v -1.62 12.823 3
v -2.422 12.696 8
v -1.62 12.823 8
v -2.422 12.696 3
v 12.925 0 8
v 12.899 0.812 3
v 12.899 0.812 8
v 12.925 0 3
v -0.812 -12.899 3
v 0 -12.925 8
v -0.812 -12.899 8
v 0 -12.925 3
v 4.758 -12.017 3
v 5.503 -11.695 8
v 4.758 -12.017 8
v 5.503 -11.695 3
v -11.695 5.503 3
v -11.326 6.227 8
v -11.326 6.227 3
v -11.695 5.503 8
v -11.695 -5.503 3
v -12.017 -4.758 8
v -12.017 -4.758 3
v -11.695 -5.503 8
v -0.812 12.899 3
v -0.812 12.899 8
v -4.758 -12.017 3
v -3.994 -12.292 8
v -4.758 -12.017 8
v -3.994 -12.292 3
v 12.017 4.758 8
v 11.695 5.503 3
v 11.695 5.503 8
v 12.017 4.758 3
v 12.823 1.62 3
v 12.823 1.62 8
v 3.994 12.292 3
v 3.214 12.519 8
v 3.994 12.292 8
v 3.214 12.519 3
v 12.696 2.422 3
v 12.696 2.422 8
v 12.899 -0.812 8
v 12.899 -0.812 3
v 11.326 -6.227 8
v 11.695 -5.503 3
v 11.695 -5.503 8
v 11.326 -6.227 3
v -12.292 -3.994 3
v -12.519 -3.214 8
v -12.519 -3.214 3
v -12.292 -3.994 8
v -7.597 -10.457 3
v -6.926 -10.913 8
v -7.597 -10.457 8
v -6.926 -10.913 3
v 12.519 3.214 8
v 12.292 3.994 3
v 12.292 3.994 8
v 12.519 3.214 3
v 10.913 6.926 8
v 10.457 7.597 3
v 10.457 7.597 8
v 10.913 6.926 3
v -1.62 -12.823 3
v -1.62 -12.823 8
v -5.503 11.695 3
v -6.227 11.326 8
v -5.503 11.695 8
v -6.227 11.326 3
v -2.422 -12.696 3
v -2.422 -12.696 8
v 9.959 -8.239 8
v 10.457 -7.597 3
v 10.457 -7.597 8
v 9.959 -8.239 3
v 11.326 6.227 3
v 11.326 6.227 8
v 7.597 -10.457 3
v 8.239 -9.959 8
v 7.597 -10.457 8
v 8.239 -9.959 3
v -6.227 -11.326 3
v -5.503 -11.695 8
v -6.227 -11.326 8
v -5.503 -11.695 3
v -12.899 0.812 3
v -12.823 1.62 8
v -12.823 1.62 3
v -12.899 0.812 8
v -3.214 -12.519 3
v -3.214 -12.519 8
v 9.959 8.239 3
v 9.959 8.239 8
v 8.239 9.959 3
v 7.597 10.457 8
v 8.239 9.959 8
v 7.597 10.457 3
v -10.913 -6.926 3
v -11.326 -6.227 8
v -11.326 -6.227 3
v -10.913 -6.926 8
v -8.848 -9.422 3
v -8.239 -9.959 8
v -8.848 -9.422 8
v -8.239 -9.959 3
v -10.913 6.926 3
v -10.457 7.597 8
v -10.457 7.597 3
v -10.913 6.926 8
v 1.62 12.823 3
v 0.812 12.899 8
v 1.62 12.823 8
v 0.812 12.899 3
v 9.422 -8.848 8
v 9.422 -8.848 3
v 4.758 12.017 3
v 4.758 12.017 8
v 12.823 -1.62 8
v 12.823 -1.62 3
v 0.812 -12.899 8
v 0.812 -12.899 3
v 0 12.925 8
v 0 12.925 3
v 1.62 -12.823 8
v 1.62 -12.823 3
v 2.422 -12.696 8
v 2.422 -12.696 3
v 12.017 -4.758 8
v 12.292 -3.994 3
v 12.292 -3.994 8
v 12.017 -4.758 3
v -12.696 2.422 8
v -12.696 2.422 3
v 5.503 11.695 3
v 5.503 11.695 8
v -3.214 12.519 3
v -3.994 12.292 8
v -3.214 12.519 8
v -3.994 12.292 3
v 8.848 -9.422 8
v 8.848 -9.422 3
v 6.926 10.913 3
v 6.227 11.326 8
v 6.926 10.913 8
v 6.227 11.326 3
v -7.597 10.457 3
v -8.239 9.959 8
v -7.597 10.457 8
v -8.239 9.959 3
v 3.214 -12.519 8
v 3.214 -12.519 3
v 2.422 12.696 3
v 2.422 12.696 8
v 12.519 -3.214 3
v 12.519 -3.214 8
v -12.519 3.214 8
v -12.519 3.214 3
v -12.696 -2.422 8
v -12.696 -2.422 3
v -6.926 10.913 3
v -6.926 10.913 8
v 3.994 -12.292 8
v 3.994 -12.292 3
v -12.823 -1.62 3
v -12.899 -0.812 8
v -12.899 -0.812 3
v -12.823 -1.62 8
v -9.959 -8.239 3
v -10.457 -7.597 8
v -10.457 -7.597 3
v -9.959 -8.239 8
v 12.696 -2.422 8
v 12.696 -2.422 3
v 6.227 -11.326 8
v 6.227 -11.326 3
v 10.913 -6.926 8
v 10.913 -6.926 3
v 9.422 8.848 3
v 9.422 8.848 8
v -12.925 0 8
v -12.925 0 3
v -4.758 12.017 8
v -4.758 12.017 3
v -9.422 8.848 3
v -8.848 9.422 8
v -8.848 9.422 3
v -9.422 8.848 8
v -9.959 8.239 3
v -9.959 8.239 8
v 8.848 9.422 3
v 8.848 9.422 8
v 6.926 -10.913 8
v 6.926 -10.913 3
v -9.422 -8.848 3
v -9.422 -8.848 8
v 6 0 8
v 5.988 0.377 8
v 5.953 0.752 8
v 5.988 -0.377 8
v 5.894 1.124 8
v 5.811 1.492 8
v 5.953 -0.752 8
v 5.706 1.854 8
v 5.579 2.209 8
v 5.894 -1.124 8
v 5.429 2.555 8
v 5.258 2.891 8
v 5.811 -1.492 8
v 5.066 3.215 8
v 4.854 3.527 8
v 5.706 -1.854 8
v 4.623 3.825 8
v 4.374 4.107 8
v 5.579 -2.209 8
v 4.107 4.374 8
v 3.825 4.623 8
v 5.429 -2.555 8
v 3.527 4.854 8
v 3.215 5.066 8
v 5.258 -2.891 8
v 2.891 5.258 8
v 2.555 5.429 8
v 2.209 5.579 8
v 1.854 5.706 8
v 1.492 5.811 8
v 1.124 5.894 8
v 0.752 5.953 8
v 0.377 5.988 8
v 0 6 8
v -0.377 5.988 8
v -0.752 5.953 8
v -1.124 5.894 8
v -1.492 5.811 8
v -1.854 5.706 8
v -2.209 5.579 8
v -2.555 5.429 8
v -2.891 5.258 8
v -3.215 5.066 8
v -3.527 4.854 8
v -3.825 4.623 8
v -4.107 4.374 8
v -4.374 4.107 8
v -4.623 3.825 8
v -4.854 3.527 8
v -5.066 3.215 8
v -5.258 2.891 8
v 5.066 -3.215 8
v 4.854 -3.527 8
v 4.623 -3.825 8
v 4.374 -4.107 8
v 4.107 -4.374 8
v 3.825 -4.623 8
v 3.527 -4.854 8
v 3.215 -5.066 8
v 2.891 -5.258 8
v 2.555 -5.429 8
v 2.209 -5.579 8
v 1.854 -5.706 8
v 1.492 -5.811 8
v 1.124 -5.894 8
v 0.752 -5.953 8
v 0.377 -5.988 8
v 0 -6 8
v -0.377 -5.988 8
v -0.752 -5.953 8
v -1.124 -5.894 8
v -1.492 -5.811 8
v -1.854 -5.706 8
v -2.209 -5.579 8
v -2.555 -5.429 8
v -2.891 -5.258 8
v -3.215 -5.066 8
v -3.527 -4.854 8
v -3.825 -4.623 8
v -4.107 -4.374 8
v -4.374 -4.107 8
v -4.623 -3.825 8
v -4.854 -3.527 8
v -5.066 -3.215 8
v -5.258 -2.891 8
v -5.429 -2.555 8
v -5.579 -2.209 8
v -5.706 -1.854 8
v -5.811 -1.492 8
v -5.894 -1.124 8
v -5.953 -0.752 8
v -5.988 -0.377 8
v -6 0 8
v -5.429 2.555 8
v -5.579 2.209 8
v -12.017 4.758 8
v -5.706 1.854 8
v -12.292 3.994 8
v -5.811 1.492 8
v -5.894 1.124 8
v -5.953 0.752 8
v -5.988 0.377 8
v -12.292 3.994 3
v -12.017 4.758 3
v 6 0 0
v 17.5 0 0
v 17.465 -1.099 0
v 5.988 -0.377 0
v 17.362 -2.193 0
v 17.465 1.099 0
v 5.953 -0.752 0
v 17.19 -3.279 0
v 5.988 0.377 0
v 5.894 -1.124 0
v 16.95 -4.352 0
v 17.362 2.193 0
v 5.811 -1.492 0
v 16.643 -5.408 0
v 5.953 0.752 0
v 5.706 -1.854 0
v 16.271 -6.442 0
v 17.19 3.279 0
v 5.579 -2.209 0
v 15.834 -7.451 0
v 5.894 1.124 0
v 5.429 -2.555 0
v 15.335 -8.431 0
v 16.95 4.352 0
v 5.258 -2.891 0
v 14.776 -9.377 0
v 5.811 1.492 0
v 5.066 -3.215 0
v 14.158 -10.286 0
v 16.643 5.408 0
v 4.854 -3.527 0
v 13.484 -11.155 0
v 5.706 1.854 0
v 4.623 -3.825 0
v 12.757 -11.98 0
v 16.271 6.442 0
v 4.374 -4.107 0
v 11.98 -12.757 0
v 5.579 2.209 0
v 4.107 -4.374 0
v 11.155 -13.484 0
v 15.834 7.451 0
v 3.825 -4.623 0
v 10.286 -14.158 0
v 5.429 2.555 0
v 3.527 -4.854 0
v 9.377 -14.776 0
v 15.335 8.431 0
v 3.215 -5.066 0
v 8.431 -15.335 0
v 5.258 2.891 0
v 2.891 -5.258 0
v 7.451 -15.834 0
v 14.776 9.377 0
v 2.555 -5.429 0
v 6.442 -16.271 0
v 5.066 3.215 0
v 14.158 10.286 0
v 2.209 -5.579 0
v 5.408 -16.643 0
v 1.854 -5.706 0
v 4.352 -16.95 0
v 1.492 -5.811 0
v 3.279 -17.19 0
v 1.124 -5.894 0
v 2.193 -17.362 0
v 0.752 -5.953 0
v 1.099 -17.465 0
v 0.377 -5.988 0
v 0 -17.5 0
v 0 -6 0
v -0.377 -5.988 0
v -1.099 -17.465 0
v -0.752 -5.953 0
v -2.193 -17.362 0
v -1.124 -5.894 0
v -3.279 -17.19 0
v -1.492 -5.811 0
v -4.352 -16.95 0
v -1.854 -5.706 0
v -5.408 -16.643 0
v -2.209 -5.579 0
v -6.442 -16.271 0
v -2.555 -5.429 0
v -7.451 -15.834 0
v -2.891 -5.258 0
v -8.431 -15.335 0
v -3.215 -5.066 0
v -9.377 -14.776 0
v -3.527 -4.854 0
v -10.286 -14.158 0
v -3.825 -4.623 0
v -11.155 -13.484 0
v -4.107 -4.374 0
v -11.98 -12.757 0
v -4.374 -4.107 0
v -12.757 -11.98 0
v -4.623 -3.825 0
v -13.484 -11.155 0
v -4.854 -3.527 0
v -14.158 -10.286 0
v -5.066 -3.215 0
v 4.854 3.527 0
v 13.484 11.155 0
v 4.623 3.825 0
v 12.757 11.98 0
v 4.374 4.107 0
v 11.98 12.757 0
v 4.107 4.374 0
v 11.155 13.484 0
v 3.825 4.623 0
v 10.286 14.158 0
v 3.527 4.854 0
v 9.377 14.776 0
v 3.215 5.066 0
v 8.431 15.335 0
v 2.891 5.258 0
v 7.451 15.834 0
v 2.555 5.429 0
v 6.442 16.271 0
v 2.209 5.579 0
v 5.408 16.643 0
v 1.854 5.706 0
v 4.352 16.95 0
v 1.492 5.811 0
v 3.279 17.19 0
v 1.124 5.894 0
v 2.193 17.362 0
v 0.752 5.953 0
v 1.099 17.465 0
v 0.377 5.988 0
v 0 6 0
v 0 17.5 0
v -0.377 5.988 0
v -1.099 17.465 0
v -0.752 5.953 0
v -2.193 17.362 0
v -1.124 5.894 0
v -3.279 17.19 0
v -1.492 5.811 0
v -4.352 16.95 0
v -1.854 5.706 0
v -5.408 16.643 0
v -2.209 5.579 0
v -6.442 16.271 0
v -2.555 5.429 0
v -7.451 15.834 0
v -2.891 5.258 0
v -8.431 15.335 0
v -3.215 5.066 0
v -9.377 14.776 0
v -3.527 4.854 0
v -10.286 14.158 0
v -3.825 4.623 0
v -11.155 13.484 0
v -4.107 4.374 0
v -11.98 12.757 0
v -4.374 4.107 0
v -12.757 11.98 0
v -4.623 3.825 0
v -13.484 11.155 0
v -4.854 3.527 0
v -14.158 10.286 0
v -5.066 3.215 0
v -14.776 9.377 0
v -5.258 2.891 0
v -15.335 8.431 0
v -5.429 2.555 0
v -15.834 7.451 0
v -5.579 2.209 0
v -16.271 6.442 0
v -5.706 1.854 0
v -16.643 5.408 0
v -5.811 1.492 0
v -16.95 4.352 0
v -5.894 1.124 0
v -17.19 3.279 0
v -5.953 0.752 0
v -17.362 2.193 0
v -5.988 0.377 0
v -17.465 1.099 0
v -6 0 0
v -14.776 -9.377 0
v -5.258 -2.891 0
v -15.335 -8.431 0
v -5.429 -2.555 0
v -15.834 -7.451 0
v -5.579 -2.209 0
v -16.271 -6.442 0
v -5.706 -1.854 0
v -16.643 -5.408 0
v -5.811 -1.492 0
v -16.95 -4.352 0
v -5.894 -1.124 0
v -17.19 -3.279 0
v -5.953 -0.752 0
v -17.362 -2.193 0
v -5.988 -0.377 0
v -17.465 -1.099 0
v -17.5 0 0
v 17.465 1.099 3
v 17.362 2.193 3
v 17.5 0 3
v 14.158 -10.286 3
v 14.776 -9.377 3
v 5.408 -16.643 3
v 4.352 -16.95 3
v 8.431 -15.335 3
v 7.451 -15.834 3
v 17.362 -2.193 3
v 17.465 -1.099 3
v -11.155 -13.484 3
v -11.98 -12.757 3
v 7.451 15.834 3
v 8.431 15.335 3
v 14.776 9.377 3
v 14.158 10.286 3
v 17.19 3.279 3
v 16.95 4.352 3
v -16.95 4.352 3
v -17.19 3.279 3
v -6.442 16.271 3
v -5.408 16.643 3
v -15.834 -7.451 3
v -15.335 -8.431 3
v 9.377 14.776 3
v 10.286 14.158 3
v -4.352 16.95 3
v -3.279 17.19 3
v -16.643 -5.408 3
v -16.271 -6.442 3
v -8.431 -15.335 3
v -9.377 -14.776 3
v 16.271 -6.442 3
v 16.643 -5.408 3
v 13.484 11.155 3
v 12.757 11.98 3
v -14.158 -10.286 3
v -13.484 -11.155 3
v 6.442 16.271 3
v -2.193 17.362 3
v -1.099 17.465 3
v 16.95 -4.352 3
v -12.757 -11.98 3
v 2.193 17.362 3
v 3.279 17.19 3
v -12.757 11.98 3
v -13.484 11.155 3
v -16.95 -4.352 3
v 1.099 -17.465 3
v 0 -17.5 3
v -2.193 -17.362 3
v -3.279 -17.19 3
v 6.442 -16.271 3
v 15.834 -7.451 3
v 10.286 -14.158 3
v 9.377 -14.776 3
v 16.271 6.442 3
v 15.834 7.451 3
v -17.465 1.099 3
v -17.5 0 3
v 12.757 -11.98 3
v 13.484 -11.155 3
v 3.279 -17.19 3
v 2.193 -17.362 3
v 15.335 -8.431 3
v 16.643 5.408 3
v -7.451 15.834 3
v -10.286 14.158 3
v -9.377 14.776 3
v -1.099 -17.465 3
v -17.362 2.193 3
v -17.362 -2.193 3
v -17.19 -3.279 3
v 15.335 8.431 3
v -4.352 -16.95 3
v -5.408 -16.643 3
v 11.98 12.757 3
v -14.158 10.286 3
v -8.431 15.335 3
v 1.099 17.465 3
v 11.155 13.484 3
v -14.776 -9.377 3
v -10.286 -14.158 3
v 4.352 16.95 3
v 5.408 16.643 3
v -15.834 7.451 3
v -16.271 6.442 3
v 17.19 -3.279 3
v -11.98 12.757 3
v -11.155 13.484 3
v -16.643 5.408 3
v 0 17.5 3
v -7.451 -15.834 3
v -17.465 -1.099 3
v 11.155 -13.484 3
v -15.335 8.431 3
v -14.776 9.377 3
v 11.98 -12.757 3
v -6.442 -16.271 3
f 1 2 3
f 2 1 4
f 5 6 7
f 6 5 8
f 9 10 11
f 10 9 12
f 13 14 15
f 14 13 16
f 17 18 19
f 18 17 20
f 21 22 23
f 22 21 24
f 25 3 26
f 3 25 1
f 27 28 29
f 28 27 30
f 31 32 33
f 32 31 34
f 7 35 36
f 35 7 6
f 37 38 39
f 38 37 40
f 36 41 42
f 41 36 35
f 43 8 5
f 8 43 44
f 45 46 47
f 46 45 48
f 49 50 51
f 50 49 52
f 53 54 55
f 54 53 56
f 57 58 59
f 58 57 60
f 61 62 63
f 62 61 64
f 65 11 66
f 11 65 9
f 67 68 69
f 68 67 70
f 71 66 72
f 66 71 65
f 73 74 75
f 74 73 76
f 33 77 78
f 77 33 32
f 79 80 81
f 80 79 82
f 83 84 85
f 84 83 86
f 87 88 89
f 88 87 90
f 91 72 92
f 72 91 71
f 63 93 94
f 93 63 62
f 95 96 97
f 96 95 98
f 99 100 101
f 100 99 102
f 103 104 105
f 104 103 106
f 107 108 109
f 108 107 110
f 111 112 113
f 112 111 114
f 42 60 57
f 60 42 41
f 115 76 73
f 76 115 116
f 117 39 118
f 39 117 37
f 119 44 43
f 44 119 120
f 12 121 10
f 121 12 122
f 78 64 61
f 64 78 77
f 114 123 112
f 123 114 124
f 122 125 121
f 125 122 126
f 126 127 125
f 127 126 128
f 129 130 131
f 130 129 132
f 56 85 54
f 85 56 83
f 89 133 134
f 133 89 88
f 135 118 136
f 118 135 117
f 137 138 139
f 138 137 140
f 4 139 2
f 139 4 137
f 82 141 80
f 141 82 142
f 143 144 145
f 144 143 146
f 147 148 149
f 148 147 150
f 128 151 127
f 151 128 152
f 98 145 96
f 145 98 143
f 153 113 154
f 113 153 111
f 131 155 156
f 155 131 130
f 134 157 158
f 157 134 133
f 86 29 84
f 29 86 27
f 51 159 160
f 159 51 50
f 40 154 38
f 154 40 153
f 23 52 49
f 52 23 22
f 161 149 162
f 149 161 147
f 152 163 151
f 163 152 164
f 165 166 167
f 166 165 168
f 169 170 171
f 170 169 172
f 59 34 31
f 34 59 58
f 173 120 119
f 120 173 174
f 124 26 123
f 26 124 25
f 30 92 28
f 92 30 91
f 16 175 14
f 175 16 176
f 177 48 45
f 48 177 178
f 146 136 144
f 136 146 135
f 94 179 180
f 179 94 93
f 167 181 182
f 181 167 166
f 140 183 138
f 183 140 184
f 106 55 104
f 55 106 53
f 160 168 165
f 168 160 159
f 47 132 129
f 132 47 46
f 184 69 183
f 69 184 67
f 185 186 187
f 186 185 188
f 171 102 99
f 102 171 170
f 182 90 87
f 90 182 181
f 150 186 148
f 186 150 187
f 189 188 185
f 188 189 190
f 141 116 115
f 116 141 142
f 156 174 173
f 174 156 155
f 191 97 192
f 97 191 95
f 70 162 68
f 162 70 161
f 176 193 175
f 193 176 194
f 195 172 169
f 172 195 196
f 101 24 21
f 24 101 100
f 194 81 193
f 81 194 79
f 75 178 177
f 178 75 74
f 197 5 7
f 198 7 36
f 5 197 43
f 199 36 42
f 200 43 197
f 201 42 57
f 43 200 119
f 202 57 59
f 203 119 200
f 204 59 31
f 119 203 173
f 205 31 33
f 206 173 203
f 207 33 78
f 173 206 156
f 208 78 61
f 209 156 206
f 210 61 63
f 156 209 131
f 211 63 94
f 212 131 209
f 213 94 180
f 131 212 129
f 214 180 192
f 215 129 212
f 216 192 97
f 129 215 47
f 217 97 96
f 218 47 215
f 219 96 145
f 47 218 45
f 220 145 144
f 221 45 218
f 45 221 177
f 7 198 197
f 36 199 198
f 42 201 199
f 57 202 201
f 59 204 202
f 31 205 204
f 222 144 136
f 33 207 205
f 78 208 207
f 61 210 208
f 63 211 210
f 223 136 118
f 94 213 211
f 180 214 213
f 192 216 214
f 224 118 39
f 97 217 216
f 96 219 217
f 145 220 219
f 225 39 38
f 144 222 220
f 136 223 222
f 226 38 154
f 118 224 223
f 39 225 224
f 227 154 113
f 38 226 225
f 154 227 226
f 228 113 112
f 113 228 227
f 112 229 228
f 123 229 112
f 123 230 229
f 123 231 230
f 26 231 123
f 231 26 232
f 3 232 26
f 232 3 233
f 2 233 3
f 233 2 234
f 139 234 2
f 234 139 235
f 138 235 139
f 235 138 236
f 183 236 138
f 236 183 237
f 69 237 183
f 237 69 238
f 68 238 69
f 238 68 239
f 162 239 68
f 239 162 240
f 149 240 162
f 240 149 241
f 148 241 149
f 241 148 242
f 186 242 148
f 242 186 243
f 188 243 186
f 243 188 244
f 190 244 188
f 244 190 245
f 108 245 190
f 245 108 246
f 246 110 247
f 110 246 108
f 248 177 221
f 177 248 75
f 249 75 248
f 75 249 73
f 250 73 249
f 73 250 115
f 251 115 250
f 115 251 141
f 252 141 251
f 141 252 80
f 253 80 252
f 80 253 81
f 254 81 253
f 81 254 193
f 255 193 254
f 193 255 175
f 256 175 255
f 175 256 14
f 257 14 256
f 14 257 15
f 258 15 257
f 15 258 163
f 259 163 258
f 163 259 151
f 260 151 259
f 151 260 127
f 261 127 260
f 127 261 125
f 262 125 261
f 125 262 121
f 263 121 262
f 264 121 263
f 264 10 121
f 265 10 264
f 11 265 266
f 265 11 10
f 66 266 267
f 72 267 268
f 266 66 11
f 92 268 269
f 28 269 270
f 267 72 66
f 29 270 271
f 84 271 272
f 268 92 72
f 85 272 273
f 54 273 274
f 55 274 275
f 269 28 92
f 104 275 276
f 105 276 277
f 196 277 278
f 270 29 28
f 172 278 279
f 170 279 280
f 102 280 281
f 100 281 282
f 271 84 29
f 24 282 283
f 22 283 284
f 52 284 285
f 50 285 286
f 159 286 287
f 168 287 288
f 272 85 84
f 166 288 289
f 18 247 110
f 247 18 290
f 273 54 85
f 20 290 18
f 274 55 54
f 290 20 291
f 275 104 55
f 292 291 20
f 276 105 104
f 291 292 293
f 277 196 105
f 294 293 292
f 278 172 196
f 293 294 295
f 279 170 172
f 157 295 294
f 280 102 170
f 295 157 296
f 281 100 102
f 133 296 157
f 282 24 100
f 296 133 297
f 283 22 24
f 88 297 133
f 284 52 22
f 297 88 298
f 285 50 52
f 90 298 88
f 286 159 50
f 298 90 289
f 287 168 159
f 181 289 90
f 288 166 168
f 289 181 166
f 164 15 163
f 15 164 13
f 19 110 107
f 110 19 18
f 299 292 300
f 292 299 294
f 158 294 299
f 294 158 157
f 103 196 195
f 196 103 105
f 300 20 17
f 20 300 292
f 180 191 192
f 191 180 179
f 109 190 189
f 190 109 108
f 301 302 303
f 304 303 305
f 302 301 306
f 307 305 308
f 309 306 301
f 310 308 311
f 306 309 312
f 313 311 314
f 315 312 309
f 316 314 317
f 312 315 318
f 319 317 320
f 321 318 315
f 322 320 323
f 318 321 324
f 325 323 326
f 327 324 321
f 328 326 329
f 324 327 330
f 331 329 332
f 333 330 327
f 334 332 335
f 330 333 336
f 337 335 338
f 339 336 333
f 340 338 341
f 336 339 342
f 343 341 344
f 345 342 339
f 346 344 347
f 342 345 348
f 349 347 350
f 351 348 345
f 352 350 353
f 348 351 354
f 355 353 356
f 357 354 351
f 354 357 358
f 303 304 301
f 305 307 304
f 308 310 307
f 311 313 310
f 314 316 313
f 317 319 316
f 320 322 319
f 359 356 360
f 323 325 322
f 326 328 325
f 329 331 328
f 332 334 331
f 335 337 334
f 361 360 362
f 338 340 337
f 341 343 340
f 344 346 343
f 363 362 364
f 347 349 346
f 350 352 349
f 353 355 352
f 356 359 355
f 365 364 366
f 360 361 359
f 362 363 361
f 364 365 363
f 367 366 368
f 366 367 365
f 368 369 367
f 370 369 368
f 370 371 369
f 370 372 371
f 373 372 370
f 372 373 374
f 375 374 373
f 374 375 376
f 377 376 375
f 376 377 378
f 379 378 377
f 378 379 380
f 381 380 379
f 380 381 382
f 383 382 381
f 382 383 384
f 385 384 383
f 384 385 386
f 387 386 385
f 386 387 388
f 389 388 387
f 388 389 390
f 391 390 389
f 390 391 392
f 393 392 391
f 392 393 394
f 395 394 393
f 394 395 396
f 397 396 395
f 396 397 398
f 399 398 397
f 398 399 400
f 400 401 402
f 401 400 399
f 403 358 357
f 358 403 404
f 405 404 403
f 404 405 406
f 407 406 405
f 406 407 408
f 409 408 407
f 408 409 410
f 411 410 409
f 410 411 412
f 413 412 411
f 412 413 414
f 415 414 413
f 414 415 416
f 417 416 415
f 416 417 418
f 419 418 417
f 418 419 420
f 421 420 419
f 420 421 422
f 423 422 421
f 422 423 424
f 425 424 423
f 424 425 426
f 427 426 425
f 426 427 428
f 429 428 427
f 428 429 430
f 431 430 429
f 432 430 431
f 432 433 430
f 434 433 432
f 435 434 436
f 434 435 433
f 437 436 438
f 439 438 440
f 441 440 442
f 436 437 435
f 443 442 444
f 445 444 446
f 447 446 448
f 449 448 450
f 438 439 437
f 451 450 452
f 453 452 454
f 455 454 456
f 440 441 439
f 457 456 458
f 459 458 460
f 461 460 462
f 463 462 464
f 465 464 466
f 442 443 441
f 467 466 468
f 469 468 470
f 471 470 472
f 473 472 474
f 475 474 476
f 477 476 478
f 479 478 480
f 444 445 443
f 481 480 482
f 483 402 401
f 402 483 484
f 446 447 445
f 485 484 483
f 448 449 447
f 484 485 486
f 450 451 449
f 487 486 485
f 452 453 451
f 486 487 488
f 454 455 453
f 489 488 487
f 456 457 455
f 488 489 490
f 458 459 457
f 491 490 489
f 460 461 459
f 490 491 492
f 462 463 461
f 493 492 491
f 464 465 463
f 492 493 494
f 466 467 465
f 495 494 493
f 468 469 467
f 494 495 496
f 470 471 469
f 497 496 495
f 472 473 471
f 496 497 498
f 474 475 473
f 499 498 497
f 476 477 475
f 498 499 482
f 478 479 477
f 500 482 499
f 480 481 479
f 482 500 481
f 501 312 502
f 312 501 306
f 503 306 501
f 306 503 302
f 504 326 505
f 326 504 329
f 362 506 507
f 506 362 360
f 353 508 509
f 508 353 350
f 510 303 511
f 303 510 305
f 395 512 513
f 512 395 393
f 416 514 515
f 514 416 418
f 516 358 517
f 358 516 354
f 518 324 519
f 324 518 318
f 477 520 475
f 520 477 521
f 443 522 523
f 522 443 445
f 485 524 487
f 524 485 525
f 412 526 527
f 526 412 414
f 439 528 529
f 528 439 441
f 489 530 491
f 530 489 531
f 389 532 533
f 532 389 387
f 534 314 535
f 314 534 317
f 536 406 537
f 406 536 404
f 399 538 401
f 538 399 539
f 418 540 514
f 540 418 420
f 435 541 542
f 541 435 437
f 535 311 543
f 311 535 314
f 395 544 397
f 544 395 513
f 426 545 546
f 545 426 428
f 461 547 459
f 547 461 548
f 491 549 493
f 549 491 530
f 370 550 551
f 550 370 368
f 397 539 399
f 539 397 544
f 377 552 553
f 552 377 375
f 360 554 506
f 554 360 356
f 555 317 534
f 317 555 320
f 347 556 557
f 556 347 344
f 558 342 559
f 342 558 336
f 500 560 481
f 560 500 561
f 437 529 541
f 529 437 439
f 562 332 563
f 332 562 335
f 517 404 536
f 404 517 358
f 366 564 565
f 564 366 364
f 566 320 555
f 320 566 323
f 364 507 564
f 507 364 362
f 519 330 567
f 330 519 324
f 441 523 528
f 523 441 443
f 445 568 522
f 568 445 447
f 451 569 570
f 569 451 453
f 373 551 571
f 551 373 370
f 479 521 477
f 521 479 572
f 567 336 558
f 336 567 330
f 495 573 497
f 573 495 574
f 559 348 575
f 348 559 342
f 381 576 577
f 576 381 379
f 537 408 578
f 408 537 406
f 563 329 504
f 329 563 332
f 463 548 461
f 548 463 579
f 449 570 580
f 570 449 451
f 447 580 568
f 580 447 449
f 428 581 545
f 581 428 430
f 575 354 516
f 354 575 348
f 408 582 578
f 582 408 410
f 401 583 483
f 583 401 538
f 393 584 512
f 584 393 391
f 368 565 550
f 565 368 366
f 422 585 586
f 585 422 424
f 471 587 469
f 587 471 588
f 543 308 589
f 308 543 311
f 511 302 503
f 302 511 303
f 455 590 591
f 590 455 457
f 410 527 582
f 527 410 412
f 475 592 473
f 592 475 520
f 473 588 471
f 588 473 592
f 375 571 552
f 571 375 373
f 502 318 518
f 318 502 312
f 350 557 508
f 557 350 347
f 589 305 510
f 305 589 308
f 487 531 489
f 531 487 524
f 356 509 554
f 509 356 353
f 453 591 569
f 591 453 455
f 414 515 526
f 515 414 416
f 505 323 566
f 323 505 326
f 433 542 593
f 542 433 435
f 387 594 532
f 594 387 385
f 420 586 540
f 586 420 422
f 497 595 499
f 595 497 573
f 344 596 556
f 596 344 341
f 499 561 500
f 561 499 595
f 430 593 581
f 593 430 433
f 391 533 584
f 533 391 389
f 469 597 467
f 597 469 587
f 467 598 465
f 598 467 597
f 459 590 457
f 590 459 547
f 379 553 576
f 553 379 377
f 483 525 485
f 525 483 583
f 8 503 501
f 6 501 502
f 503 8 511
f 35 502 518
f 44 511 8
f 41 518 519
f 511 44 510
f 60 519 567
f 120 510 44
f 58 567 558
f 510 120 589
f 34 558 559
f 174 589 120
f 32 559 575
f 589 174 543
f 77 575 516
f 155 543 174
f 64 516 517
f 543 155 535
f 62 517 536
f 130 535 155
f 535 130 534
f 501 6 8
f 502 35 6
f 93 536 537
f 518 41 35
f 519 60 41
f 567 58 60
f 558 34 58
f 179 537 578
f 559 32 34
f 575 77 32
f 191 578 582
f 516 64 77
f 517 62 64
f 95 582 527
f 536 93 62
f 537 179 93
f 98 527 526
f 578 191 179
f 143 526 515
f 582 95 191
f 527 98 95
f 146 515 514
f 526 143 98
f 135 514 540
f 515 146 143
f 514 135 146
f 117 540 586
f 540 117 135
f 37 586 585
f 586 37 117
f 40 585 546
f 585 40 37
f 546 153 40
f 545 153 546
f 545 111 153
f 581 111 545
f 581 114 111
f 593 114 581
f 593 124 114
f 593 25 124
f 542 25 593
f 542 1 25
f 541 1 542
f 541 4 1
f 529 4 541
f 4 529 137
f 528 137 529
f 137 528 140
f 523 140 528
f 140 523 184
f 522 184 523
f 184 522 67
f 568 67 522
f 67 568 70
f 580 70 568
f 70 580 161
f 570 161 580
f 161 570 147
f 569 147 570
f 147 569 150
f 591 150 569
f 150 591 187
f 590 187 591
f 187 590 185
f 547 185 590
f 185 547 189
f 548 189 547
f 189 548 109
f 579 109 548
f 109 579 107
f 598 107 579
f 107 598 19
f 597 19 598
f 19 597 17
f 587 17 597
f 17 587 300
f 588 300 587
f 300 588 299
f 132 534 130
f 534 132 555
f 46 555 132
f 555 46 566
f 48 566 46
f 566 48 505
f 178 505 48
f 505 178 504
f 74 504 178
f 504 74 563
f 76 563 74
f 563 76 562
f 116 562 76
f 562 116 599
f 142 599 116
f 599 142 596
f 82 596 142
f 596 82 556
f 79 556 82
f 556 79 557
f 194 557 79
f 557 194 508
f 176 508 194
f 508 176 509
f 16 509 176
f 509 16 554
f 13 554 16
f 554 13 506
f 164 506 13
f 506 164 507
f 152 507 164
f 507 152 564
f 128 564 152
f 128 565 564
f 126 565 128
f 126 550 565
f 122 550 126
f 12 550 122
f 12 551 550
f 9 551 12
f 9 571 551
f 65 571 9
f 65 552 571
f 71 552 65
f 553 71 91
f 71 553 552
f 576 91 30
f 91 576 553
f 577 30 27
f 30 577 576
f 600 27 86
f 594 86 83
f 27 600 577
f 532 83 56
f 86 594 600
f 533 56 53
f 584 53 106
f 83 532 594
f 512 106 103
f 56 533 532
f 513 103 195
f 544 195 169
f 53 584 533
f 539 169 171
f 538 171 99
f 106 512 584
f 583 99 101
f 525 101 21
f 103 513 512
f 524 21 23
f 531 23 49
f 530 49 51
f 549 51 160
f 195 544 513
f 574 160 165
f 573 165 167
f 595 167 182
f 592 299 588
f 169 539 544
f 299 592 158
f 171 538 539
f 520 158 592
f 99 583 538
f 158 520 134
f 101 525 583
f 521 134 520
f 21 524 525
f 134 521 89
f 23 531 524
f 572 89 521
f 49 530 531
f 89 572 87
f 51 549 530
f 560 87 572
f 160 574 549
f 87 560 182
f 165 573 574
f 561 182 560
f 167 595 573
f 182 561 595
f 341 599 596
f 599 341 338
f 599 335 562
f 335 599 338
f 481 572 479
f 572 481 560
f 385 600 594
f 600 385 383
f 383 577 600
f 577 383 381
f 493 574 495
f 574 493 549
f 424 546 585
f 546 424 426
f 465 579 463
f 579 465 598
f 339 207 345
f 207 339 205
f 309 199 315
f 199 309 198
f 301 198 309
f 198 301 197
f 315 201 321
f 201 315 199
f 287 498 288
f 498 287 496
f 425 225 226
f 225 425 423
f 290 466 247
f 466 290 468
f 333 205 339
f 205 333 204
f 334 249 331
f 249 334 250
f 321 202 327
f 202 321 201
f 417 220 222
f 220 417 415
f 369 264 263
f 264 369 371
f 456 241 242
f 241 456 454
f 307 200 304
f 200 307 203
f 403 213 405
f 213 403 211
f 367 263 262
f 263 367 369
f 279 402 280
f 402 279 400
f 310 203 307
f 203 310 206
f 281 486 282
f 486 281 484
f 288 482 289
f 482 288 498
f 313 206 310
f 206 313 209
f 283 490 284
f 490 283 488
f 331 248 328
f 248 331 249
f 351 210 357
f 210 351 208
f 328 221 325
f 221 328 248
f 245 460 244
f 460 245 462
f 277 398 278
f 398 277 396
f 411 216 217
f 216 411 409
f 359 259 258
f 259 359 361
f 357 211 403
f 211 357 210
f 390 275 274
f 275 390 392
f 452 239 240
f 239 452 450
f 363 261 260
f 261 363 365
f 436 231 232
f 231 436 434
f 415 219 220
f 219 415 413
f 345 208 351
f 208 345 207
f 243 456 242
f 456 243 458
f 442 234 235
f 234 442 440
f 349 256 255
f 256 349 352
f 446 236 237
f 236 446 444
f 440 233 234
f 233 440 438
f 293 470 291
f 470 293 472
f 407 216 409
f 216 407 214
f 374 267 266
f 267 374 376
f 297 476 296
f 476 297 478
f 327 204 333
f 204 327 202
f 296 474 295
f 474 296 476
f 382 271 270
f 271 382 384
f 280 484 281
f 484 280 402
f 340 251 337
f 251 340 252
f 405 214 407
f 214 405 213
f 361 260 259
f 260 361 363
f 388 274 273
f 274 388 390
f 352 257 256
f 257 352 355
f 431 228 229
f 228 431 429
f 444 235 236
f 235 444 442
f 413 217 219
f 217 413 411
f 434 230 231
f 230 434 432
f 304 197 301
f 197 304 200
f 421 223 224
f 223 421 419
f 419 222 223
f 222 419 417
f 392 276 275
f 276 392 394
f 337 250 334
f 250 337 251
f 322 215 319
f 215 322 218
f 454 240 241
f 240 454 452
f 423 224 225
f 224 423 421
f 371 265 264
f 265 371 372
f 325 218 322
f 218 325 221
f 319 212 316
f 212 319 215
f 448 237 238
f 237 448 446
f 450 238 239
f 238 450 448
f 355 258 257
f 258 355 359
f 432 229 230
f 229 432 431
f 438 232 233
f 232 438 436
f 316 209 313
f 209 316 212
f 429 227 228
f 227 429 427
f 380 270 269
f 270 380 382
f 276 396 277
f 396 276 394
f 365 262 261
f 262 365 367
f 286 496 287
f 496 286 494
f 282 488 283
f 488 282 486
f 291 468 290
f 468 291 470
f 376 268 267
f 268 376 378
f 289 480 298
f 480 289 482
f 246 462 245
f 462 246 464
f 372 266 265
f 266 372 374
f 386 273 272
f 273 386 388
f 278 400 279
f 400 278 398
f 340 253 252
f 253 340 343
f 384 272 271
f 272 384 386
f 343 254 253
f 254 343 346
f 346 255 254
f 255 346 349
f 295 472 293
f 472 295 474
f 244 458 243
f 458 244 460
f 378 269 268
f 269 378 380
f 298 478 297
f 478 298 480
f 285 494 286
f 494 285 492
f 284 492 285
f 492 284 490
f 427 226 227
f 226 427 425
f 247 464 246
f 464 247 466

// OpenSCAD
//test hub
$fn=100;

module hub() {
    cylinder(h=8,d=25.85);
    cylinder(h=3,d=35);
}

module axle() {
    translate([0,0,-1])
      cylinder(h=10, d=12);
}

difference() {
  hub();
  
    axle();
}
